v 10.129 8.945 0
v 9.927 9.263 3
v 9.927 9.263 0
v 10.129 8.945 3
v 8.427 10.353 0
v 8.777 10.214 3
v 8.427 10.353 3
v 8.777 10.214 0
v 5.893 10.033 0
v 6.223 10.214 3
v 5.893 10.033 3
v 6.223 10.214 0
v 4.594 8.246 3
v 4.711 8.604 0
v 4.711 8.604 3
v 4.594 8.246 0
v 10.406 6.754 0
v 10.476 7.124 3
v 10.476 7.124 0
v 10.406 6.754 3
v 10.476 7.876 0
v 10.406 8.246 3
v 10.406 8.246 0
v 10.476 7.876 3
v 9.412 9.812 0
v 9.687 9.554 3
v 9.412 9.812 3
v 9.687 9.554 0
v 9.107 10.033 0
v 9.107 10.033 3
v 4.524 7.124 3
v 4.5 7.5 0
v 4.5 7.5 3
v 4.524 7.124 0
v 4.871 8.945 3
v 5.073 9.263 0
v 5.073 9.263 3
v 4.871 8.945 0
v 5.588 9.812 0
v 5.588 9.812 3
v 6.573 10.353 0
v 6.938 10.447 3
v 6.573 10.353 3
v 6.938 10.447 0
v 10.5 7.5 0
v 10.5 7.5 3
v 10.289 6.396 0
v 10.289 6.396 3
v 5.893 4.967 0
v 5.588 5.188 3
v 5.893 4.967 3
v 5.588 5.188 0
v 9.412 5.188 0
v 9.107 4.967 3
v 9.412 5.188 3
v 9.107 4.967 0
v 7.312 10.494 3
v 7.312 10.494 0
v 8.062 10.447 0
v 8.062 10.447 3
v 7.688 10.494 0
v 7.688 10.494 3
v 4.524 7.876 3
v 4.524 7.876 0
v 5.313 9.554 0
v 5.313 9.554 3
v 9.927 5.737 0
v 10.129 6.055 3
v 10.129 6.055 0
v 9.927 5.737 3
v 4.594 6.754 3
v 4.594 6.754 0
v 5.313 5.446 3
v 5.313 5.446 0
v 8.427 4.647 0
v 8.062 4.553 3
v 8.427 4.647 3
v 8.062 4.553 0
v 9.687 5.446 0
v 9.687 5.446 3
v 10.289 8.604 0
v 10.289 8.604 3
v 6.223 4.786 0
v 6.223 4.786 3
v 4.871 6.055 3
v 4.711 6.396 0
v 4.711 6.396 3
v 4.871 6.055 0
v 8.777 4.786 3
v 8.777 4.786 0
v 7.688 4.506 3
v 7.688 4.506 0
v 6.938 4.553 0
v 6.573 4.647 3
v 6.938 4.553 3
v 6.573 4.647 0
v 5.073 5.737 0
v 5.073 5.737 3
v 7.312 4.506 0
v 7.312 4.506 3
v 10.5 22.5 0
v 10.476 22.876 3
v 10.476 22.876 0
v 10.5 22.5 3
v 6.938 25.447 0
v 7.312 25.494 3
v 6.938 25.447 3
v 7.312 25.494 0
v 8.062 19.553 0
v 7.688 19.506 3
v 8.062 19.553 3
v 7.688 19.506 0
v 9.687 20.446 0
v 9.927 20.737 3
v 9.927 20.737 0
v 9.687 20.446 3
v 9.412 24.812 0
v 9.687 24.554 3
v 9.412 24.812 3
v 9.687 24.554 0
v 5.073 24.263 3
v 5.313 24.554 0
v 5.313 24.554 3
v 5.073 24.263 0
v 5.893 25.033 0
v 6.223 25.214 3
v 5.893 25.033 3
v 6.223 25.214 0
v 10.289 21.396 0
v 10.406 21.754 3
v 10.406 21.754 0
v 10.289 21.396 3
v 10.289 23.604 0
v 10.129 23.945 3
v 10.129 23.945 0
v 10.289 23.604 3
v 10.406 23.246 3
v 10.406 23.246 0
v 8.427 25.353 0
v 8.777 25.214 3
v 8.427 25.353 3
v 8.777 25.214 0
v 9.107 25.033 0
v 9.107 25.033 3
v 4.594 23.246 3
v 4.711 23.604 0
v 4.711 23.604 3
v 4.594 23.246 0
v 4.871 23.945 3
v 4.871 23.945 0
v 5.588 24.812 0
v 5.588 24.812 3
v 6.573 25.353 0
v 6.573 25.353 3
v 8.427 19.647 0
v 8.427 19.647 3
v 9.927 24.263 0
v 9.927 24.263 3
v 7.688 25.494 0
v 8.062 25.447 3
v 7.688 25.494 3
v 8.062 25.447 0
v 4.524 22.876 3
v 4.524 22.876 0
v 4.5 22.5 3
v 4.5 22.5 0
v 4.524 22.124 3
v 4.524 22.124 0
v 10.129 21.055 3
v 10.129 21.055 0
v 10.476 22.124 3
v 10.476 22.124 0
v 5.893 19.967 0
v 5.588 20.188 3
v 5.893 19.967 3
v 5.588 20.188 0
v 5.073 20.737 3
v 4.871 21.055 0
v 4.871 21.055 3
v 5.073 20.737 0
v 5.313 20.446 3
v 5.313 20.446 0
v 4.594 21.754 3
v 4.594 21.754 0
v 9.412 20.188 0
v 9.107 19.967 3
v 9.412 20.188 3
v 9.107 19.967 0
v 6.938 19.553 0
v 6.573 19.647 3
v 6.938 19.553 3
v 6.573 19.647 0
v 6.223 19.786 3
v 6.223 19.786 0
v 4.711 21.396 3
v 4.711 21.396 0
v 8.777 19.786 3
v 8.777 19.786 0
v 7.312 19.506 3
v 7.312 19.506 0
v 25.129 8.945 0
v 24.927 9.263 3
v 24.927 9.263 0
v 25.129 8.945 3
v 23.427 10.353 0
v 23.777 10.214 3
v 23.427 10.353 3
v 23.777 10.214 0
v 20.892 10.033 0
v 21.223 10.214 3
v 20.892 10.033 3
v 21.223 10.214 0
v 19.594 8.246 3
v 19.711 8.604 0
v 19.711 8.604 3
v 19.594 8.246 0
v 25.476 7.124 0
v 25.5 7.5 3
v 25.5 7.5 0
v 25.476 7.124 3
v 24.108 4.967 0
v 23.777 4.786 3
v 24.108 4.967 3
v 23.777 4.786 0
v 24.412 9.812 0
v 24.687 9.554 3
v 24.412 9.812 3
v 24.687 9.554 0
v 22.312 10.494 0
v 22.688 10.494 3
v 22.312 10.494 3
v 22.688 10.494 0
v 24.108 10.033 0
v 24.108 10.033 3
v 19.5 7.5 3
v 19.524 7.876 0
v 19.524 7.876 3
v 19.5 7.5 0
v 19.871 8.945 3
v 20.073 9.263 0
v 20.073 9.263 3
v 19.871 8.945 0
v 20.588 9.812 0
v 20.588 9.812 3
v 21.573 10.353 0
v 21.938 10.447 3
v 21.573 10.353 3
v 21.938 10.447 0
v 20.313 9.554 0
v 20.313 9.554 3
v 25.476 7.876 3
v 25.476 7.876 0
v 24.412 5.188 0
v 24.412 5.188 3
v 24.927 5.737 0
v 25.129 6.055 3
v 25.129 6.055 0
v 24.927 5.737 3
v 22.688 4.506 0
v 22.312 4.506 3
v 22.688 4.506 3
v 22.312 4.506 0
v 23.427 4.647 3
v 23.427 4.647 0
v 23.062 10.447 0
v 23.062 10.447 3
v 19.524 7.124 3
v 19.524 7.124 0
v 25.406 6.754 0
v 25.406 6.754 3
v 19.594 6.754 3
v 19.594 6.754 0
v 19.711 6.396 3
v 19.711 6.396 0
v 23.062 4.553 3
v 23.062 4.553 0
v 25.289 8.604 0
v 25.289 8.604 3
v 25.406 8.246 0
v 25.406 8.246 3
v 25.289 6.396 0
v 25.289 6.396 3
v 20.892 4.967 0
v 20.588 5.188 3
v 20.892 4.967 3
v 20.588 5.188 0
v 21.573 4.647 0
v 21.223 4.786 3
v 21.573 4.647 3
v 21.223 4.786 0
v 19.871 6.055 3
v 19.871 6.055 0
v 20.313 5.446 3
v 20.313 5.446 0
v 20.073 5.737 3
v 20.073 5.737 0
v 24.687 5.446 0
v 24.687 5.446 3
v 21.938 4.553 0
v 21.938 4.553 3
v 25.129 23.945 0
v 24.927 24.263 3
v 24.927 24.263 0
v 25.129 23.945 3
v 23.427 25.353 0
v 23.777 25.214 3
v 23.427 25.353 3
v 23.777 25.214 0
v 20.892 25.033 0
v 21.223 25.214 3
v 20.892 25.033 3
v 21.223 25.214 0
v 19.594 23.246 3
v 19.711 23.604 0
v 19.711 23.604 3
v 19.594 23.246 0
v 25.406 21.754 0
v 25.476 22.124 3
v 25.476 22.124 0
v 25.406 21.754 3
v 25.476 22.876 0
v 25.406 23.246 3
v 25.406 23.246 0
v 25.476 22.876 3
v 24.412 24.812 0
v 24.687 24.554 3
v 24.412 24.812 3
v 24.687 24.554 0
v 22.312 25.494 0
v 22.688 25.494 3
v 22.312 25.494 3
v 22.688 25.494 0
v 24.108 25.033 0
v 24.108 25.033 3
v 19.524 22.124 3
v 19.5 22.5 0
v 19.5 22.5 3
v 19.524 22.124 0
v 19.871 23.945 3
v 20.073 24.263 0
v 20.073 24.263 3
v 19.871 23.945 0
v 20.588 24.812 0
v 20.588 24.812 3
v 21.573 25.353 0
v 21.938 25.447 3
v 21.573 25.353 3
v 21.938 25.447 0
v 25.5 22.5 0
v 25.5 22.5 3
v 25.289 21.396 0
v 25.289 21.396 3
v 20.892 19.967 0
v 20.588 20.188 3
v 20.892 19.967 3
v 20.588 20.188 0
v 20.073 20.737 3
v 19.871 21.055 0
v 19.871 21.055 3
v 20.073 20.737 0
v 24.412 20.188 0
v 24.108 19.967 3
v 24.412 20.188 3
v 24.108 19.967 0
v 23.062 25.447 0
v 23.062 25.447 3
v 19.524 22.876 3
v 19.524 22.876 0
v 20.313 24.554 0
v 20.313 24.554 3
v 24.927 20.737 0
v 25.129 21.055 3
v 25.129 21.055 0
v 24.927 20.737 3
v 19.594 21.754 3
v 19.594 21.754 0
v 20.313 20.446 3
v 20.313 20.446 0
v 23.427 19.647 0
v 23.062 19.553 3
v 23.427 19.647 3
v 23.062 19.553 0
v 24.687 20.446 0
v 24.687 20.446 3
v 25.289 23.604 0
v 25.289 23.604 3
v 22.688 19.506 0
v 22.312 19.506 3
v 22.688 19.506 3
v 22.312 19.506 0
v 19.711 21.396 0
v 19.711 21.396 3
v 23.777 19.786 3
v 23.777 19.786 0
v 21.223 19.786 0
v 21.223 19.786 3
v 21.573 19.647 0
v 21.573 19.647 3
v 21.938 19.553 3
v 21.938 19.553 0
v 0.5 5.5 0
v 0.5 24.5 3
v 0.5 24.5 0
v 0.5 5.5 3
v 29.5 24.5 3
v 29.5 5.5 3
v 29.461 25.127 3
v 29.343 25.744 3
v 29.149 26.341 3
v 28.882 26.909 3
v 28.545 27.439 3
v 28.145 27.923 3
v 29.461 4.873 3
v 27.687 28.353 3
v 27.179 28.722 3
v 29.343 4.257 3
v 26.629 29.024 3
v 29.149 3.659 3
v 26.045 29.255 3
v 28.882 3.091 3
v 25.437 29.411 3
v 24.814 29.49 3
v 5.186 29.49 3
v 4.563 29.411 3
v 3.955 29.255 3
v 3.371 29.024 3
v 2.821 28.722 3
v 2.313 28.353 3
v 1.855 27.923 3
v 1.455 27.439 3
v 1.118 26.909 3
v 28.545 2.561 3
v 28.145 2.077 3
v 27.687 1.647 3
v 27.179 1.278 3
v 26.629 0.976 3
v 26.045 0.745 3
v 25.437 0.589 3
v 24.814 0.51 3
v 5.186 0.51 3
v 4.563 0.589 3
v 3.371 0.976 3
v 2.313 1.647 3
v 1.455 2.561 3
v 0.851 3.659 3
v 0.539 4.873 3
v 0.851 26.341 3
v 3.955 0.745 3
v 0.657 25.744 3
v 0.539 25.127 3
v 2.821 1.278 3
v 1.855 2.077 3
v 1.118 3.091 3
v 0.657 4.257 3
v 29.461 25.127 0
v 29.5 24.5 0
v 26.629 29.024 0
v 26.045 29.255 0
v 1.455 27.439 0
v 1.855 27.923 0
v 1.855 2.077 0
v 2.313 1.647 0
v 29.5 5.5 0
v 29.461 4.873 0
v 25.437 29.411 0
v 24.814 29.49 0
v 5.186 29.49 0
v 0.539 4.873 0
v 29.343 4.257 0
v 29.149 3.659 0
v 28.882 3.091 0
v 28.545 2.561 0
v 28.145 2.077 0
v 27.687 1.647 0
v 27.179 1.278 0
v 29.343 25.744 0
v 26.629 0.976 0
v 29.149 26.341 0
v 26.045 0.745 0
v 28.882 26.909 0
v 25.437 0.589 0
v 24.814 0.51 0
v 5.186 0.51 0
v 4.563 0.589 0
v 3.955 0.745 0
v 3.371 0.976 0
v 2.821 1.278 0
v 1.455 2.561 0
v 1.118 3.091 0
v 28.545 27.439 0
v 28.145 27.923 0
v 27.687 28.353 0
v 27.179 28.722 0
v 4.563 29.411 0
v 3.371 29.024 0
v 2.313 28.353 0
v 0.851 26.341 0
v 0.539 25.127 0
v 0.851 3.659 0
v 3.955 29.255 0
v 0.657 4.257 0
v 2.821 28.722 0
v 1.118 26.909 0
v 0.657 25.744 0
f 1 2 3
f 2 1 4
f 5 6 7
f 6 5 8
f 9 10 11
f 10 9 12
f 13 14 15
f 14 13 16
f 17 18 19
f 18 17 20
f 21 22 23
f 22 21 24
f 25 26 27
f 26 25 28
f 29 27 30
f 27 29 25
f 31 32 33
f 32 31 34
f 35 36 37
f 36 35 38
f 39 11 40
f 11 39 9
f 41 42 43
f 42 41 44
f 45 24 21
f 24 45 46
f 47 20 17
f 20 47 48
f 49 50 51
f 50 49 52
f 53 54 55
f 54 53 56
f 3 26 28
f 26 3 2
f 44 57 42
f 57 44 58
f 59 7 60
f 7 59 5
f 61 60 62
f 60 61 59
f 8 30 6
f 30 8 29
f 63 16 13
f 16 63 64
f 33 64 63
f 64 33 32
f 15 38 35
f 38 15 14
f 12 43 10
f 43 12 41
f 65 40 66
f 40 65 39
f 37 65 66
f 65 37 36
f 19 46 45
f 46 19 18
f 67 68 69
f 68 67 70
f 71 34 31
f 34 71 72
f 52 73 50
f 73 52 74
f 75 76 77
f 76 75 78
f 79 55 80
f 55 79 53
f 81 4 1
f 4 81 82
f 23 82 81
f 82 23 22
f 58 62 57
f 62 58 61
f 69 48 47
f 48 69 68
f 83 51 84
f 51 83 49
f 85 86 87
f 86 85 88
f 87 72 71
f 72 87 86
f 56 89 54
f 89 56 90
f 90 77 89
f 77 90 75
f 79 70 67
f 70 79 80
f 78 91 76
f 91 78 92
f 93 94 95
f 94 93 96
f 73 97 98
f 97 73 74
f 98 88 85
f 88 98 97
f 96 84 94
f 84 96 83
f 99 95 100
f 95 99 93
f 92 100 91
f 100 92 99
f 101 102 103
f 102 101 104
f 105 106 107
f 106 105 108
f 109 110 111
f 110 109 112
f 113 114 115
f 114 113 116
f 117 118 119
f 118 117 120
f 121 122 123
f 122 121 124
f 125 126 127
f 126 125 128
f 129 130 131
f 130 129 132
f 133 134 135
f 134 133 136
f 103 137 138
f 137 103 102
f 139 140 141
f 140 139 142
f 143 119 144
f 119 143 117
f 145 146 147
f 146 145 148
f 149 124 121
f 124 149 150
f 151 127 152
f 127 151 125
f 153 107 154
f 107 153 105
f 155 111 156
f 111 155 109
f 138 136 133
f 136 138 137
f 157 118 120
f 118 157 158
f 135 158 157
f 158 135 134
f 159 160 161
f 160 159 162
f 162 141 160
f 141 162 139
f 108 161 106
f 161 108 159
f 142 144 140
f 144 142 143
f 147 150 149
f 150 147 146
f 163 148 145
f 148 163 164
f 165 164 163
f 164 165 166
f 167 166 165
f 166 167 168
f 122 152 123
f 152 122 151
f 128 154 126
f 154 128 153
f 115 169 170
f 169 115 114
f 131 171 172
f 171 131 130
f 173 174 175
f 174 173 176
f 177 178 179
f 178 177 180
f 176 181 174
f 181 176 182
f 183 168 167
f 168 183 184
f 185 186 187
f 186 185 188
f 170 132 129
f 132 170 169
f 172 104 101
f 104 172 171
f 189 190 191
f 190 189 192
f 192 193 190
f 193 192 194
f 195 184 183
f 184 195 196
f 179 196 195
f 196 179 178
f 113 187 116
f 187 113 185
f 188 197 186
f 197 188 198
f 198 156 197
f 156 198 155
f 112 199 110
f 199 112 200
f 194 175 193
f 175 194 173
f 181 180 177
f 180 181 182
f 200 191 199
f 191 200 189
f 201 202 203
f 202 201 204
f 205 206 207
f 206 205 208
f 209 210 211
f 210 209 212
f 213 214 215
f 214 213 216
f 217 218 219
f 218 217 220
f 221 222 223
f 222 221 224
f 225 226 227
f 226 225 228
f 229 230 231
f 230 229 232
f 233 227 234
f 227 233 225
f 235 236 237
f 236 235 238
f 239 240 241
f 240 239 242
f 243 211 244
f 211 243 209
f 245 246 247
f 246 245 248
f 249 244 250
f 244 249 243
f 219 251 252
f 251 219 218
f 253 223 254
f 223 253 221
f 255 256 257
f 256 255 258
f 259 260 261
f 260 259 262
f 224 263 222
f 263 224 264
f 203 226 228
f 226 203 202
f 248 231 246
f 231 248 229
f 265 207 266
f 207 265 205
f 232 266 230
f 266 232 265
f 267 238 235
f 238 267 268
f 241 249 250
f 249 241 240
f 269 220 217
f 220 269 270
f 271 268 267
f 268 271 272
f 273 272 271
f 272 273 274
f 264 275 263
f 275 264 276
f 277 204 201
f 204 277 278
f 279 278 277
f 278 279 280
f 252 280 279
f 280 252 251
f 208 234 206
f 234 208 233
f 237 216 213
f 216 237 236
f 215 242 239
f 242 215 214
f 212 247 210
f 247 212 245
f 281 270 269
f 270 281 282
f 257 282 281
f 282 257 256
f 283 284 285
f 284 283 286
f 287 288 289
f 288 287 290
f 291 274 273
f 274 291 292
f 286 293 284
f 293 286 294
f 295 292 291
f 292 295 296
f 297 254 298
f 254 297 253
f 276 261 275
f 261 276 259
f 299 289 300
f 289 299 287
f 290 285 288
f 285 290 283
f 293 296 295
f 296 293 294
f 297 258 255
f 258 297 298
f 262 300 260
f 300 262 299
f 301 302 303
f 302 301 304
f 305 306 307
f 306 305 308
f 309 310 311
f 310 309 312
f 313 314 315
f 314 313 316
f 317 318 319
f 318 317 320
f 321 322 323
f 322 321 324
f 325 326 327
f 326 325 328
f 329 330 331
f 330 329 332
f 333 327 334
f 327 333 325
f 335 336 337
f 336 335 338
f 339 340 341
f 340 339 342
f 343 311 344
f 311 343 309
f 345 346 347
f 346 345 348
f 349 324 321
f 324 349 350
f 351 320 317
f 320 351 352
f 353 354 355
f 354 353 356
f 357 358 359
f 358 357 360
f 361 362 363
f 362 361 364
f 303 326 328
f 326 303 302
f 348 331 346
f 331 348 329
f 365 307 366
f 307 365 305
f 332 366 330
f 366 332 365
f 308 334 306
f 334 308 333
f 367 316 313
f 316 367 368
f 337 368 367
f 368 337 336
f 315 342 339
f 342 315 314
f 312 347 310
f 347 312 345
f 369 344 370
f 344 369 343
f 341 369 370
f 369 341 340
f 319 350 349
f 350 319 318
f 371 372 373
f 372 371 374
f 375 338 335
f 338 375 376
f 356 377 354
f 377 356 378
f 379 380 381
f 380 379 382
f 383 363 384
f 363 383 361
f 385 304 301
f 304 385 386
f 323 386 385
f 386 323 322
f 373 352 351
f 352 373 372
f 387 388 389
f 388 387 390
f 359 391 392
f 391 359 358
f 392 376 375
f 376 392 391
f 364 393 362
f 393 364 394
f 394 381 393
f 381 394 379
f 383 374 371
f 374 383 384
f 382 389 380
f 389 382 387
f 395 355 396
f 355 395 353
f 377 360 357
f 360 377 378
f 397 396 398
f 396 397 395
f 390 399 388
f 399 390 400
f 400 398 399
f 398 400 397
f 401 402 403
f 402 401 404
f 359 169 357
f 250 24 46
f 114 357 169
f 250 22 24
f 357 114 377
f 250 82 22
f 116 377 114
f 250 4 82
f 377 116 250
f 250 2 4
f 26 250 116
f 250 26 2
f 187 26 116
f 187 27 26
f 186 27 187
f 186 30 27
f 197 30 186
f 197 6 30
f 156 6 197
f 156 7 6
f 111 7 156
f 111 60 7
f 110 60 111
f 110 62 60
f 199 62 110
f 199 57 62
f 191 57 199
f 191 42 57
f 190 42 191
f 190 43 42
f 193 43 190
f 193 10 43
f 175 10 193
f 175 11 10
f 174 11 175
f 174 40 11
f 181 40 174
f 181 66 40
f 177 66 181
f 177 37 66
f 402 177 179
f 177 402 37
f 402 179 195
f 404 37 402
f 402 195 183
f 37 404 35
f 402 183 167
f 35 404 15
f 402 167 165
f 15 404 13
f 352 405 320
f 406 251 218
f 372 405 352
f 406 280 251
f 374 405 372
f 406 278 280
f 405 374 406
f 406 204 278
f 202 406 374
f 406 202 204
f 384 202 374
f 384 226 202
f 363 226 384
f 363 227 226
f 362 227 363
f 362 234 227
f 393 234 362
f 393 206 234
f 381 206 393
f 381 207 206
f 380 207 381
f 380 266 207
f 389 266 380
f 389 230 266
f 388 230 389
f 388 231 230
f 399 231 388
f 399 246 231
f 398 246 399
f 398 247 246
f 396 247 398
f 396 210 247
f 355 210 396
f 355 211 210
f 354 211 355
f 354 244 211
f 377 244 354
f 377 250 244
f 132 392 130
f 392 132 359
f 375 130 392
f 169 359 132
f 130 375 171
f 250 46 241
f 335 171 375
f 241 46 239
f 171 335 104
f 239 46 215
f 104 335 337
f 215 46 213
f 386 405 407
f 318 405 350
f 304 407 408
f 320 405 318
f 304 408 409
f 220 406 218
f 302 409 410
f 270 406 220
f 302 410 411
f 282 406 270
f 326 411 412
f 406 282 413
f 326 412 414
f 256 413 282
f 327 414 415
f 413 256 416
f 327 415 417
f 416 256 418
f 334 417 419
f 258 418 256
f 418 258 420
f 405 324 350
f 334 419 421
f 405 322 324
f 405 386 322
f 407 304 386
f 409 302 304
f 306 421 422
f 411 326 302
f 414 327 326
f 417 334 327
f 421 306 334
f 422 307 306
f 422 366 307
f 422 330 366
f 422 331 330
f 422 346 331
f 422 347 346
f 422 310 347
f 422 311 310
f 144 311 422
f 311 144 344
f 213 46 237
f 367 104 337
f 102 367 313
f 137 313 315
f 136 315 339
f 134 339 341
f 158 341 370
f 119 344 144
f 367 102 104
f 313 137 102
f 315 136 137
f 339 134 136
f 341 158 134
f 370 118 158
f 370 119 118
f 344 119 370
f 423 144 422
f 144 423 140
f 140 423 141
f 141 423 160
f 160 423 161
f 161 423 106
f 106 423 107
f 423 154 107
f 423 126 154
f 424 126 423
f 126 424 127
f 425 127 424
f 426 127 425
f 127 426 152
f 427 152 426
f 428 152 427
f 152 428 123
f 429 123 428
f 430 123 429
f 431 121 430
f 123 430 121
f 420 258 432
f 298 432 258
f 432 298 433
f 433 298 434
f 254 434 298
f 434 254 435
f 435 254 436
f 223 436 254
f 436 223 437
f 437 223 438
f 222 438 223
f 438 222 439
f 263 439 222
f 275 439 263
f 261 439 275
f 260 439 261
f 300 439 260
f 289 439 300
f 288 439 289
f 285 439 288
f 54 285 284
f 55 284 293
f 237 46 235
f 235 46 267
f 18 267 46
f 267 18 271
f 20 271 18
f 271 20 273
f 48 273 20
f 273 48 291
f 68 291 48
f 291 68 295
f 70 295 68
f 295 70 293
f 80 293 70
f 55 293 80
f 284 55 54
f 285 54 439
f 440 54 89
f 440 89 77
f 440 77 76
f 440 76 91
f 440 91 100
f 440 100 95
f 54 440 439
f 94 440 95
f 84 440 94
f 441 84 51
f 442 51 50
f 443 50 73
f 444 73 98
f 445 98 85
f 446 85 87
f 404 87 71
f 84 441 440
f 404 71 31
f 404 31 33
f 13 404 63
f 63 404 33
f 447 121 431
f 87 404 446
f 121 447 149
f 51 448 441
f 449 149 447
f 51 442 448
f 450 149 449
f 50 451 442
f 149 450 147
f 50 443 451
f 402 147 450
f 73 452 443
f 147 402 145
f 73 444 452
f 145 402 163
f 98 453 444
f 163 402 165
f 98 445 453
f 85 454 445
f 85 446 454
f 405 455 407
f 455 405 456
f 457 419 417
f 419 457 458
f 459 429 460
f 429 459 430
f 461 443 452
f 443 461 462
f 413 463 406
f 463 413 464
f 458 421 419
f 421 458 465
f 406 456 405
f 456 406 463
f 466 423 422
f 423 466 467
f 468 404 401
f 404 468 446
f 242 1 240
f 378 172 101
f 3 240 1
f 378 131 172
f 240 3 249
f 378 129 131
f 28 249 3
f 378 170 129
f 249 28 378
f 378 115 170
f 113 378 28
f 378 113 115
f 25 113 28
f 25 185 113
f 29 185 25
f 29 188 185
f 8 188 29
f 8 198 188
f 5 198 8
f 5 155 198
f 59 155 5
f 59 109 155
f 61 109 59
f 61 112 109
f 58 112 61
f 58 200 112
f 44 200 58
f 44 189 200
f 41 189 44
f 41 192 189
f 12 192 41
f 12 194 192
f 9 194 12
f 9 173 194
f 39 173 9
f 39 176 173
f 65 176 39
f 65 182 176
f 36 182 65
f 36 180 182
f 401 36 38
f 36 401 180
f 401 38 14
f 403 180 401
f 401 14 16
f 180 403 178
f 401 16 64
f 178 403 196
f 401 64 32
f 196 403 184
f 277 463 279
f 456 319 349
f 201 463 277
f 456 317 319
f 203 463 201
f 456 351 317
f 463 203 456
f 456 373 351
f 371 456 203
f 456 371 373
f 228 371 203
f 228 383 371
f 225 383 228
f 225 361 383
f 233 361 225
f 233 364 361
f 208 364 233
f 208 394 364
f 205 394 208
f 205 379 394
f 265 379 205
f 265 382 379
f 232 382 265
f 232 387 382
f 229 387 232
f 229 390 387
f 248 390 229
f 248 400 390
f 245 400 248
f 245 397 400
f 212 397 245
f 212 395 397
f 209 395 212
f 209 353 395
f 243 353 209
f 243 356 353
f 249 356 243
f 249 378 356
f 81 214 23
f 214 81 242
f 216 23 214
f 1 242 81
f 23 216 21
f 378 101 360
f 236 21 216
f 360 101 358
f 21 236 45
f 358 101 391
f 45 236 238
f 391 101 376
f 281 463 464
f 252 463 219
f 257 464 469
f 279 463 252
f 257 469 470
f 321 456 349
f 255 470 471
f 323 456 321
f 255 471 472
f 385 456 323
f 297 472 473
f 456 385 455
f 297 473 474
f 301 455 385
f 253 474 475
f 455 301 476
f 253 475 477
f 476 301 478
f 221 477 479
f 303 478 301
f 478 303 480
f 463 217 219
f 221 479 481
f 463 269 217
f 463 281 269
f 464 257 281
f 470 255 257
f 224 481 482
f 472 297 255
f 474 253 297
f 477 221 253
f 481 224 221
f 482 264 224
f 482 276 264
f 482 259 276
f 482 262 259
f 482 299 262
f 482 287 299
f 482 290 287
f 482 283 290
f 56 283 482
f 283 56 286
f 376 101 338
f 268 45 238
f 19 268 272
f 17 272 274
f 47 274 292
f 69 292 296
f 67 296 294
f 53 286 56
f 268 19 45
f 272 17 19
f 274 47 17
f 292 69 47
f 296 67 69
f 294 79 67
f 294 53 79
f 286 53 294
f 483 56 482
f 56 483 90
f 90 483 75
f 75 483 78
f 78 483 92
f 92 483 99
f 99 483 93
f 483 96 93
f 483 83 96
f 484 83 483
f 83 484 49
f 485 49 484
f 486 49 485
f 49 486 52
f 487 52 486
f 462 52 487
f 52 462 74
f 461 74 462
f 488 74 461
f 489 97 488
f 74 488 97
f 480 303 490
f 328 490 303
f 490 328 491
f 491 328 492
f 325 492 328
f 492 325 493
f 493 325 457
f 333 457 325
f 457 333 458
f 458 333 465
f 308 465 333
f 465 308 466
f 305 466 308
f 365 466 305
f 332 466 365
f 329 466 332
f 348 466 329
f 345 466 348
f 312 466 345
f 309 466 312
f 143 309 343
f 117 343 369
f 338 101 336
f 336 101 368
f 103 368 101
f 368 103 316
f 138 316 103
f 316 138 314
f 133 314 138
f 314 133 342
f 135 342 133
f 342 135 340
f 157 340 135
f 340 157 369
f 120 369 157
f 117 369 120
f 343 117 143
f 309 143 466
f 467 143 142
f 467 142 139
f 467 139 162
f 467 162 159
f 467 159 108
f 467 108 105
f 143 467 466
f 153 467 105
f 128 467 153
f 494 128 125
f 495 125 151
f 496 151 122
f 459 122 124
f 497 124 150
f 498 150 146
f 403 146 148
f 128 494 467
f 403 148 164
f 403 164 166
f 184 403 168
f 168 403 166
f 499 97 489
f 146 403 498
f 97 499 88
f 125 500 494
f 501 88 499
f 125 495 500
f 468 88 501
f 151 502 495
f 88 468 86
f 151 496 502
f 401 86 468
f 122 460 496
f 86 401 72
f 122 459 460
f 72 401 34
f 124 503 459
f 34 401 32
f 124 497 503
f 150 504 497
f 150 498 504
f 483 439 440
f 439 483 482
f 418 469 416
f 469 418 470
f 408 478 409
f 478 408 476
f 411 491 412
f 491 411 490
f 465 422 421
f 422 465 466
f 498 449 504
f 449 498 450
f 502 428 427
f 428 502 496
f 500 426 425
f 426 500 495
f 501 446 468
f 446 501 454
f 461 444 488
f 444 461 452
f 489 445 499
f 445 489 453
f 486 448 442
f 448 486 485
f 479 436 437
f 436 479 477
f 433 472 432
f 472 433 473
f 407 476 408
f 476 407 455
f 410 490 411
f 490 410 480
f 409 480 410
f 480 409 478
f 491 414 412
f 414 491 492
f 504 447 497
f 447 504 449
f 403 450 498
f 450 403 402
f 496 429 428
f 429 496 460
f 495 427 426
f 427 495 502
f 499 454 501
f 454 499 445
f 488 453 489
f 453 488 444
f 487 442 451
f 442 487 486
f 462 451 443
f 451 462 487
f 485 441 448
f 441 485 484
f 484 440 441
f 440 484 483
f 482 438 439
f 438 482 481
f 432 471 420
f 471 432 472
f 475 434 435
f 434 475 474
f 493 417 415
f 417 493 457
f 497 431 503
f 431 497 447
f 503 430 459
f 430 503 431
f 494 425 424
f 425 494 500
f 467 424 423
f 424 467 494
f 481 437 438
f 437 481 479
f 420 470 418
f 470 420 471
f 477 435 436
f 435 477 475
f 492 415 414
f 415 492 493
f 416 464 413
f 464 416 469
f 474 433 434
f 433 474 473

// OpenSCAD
// Generated by SolidPython 1.1.3 on 2023-01-30 13:24:51
$fn = 50;


difference() {
	union() {
		translate(v = [15.0000000000, 15.0000000000, 0]) {
			rotate(a = [0, 0, 0]) {
				hull() {
					translate(v = [-9.5000000000, 9.5000000000, 0]) {
						rotate(a = [0, 0, 0]) {
							translate(v = [0, 0, 0]) {
								rotate(a = [0, 0, 0]) {
									cylinder(h = 3, r = 5);
								}
							}
						}
					}
					translate(v = [9.5000000000, 9.5000000000, 0]) {
						rotate(a = [0, 0, 0]) {
							translate(v = [0, 0, 0]) {
								rotate(a = [0, 0, 0]) {
									cylinder(h = 3, r = 5);
								}
							}
						}
					}
					translate(v = [-9.5000000000, -9.5000000000, 0]) {
						rotate(a = [0, 0, 0]) {
							translate(v = [0, 0, 0]) {
								rotate(a = [0, 0, 0]) {
									cylinder(h = 3, r = 5);
								}
							}
						}
					}
					translate(v = [9.5000000000, -9.5000000000, 0]) {
						rotate(a = [0, 0, 0]) {
							translate(v = [0, 0, 0]) {
								rotate(a = [0, 0, 0]) {
									cylinder(h = 3, r = 5);
								}
							}
						}
					}
				}
			}
		}
	}
	union() {
		translate(v = [7.5000000000, 7.5000000000, 0]) {
			rotate(a = [0, 0, 0]) {
				translate(v = [0, 0, -50]) {
					rotate(a = [0, 0, 0]) {
						cylinder(h = 100, r = 3.0000000000);
					}
				}
			}
		}
		translate(v = [7.5000000000, 22.5000000000, 0]) {
			rotate(a = [0, 0, 0]) {
				translate(v = [0, 0, -50]) {
					rotate(a = [0, 0, 0]) {
						cylinder(h = 100, r = 3.0000000000);
					}
				}
			}
		}
		translate(v = [22.5000000000, 7.5000000000, 0]) {
			rotate(a = [0, 0, 0]) {
				translate(v = [0, 0, -50]) {
					rotate(a = [0, 0, 0]) {
						cylinder(h = 100, r = 3.0000000000);
					}
				}
			}
		}
		translate(v = [22.5000000000, 22.5000000000, 0]) {
			rotate(a = [0, 0, 0]) {
				translate(v = [0, 0, -50]) {
					rotate(a = [0, 0, 0]) {
						cylinder(h = 100, r = 3.0000000000);
					}
				}
			}
		}
	}
}
/***********************************************
*********      SolidPython code:      **********
************************************************
 
from solid import *
import os
import subprocess

import oomB

import opsc_library_gen

mode = "laser"
#mode = "3d_print"

defined_objects = {}

radius_dict = {}
countersunk_dict = {}


def set_mode(m):
    global mode
    mode = m
    radius_dict['M6'] = 6.5/2
    radius_dict['M3'] = 3.3/2
    if mode == "laser":
        radius_dict['M6'] = 6/2
        radius_dict['M3'] = 3/2

    countersunk_dict['M3'] = {}
    countersunk_dict['M3']['little_rad'] = radius_dict['M3']
    countersunk_dict['M3']['big_rad'] = (5.5+0.6)/2
    if mode == "laser":
        countersunk_dict['M3']['big_rad'] = (4.75+0.6)/2
        countersunk_dict['M3']['little_rad'] = (4.75+0.6)/2

    countersunk_dict['M3']['height'] = 1.7


def opsc_make_object(filename, objects, save_type="none",resolution=50, layers = 1, tilediff = 200, mode="laser"):
    set_mode(mode)
    save_type = save_type.lower()
    os.makedirs(os.path.dirname(filename), exist_ok=True)
    final_object = opsc_get_object(objects)
    # Save the final object to the specified filename    
    scad_render_to_file(final_object, filename, file_header='$fn = %s;' % resolution, include_orig_code=True)
    if mode == "laser":
        filename_laser = filename.replace(".scad","-flat.scad")
        scad_render_to_file(getLaser(final_object, layers=layers, tilediff=tilediff), filename_laser, file_header='$fn = %s;' % resolution, include_orig_code=True)
        if save_type == "all":
            saveToAll(filename_laser)
        elif save_type == "dxf":
            saveToDxf(filename_laser)
    if save_type == "all":
        saveToAll(filename)
    elif save_type == "dxf":
        saveToDxf(filename)


def opsc_get_object(objects):
    # Create the solidpython objects
    positive_objects = [get_opsc_item(obj) for obj in objects if obj['type'] == 'positive']
    negative_objects = [get_opsc_item(obj) for obj in objects if obj['type'] == 'negative']
    # Union the positive objects
    positive_object = union()(*positive_objects)
    # Union the negative objects
    negative_object = union()(*negative_objects)
    # Create the final object by subtracting the negative objects from the positive objects
    return difference()(positive_object, negative_object)

def get_opsc_item(params):
    # A dictionary to map radius string values to numerical values
    #radius_dict = {'small': 5, 'medium': 10, 'large': 15}
    # An array of function names for basic shapes
    basic_shapes = ['cube', 'sphere', 'cylinder']
    
    # An array of function names for other shapes
    other_shapes = ['hole', 'slot', 'rounded_rectangle', 'countersunk']
    


    # Convert radius to r if present, and remove radius from the params dictionary
    if 'radius' in params:
        if isinstance(params['radius'], str):
            # Use the radius_dict to map the radius string value to a numerical value
            params['r'] = radius_dict[params['radius']]
        else:
            params['r'] = params['radius']
        del params['radius']
    

    # Check if the object type is a basic shape
    if params['shape'] in basic_shapes:
        # Remove shape and unexpected dictionary values
        allowed_keys = {'size', 'r', 'r1', 'r2', 'd', 'h', 'rw', 'rh', 'dw', 'dh'}
        shape_params = {k: v for k, v in params.items() if k in allowed_keys}

        # Call the corresponding function for the shape parameter, using ** notation to pass the shape_params dictionary as keyword arguments
        return get_opsc_transform(params,globals()[params['shape']](**shape_params))
    
    # If the object type is not a basic shape, check if it's a defined object or one of the other shapes
    elif params['shape'] in other_shapes:
        # Call the corresponding function for the shape parameter, passing the params dictionary as an argument
        p2 = copy.deepcopy(params)
        p2["pos"] = [0,0,0]
        return get_opsc_transform(params,globals()[params['shape']](p2))
    
    # If the object is not a basic shape or a defined object, try to import it from a .scad file
    else:
        obj = defined_objects[params['shape']]
        return get_opsc_transform(params,obj)

def get_opsc_transform(params, solid_obj):
    # Rotate the object based on the 'rot' field in the params dictionary, or the 'rotX', 'rotY', and 'rotZ' fields if 'rot' is not present
    rot = params.get('rot', [])
    if rot:
        rotX, rotY, rotZ = rot
    else:
        rotX = params.get('rotX', 0)
        rotY = params.get('rotY', 0)
        rotZ = params.get('rotZ', 0)
    solid_obj = rotate([rotX, rotY, rotZ])(solid_obj)

    # Translate the object based on the 'pos' field in the params dictionary, or the 'x', 'y', and 'z' fields if 'pos' is not present
    pos = params.get('pos', [])
    if pos:
        x, y, z = pos
    else:
        x = params.get('x', 0)
        y = params.get('y', 0)
        z = params.get('z', 0)
    solid_obj = translate([x, y, z])(solid_obj)
    return solid_obj


import random

def opsc_easy_array(type, shape, repeats, pos_start, shift_arr, **kwargs):
    for i in range(0,3):
        repeats.append(1)
        pos_start.append(0)
        shift_arr.append(0)
    return_objects = []

    for x in range(0,repeats[0]):
        for y in range(0,repeats[1]):
            for z in range(0,repeats[2]):
                return_objects.append(opsc_easy(type, shape, pos=[pos_start[0]+x*shift_arr[0],pos_start[1]+y*shift_arr[1],pos_start[2]+z*shift_arr[2]], **kwargs))
    return return_objects                



def opsc_easy(type, shape, **kwargs):
    obj = {
        'type': type,
        'shape': shape
    }
    for param in ['size', 'r', 'r1', 'r2', 'd', 'h', 'rw', 'rh', 'dw', 'dh', 'pos', 'x', 'y', 'z', 'rot', 'rotX', 'rotY', 'rotZ', "w"]:
        if param in kwargs:
            obj[param] = kwargs[param]
    return obj

def hole(params):
    p2 = copy.deepcopy(params)  
    # Check if the radius is a string and replace it with the corresponding value from the dictionary
    if isinstance(p2['r'], str):
        p2['r'] = radius_dict[p2['r']]
    
    # Set the height to 100 if not specified
    if 'h' not in p2:
        p2['h'] = 100
        p2["pos"] = [0,0,-50]
    p2["center"] = True
    # Create the cylinder object
    p2["shape"] = "cylinder"
    p2["type"] = "positive"

    return get_opsc_item(p2)

import copy

def countersunk(params):
    p2 = copy.deepcopy(params)
    counter_rad = p2['r']
    p2['r'] = radius_dict[p2['r']]
    hp = copy.deepcopy(p2)
    hp["type"] = "positive"
    hp["shape"] = "hole"
    del hp["rot"]
    hol = get_opsc_item(hp)
    
    cp = copy.deepcopy(p2)
    cp["h"] = countersunk_dict[counter_rad]["height"]
    cp["r2"] = countersunk_dict[counter_rad]["little_rad"]
    cp["r1"] = countersunk_dict[counter_rad]["big_rad"]
    del cp["r"]
    del cp["rot"]
    cp["type"] = "positive"
    cp["shape"] = "cylinder"
    cp["pos"] = [0,0,0]

    top = get_opsc_item(cp)
    return union()(hol,top)



def slot(params):  
    p2 = copy.deepcopy(params) 
    if isinstance(p2['r'], str):
        p2['r'] = radius_dict[p2['r']]
    p2["type"] = "positive"
    p2["shape"] = "hole"
    del p2["rot"]
    p2["pos"] = [0,0,0]
    left = copy.deepcopy(p2)
    right = copy.deepcopy(p2)
    left["pos"][0] = p2["w"] / 2 - p2["r"] 
    
    right["pos"][0] = -p2["w"] / 2 + p2["r"] 
    pass
    leftObj = get_opsc_item(left)
    rightObj = get_opsc_item(right)
    return hull()(leftObj, rightObj)

def rounded_rectangle(params):   
    p2 = copy.deepcopy(params) 
    p2["h"] = p2["size"][2]
    p2["pos"] = p2.get("pos", [0, 0, 0]) 
    p2["type"] = "positive"
    p2["shape"] = "hole"
    p2["pos"] = [0,0,0]
    
    if 'rot' in p2:
        del p2["rot"]   
    if 'r' not in p2:
        p2["r"] = 5 
    tl = copy.deepcopy(p2)
    tr = copy.deepcopy(p2)
    bl = copy.deepcopy(p2)
    br = copy.deepcopy(p2)
    tl["pos"][0] = -(p2["size"][0] - p2["r"]*2)/2
    tl["pos"][1] = (p2["size"][1] - p2["r"]*2)/2
    tr["pos"][0] = (p2["size"][0] - p2["r"]*2)/2
    tr["pos"][1] = (p2["size"][1] - p2["r"]*2)/2
    bl["pos"][0] = -(p2["size"][0] - p2["r"]*2)/2
    bl["pos"][1] = -(p2["size"][1] - p2["r"]*2)/2
    br["pos"][0] = (p2["size"][0] - p2["r"]*2)/2
    br["pos"][1] = -(p2["size"][1] - p2["r"]*2)/2
    del tl["size"]
    del tr["size"]
    del bl["size"]
    del br["size"]
    tlo = get_opsc_item(tl)
    tro = get_opsc_item(tr)
    blo = get_opsc_item(bl)
    bro = get_opsc_item(br)    
    return hull()(tlo, tro, blo, bro)



def import_scad_object(filename):
    # Import the .scad file and convert it to a solidpython object
    #filename = "parts"
    obj = import_scad(filename)
    return obj.main()
    


import os
import solid as solidpython

# A dictionary to store the defined objects


def load_scad_objects():
    opsc_library_gen.gen_library(defined_objects)

import random

def test(num_objects):
    objects = []
    for i in range(num_objects):
        # Choose a random shape
        #shape = random.choice(['cube', 'sphere', 'cylinder', 'hole', 'slot', "rounded_rectangle"])
        shape = random.choice(["rounded_rectangle"])

        # Choose a random type
        type = random.choice(['positive', 'negative'])
        
        # Create an empty object dictionary
        obj = {'shape': shape, 'type': type}
        
        # Set shape-specific parameters
        if obj['shape'] in ['cube']:
            obj['size'] =  [random.uniform(5, 15), random.uniform(5, 15), random.uniform(5, 15)]
        if obj['shape'] in ['rounded_rectangle']:
            obj['size'] =  [random.uniform(5, 15), random.uniform(5, 15), random.uniform(5, 15)]
            obj['r'] = random.uniform(0.5, 5)
        elif obj['shape'] == 'sphere':
            obj['r'] = random.uniform(5, 15)
        elif obj['shape'] in ['cylinder', 'hole']:
            obj['r'] = random.uniform(0.5, 5)
            obj['h'] = random.uniform(5, 15)
        elif obj['shape'] == 'slot':
            obj['r'] = random.uniform(0.5, 5)
            obj['h'] = random.uniform(5, 15)
            obj['w'] = random.uniform(5, 15)
        
        # Set a random position and rotation
        obj['pos'] = [random.uniform(-20, 20), random.uniform(-20, 20), random.uniform(-20, 20)]
        obj['rot'] = [random.uniform(-180, 180), random.uniform(-180, 180), random.uniform(-180, 180)]
        
        # Add the object to the list
        objects.append(obj)
    return objects

####### old file saving
def saveToAll(fileIn):
    saveToDxf(fileIn)
    saveToPng(fileIn)
    saveToStl(fileIn)
    saveToSvg(fileIn)

def saveToDxf(fileIn, fileOut="", copy_to_laser=True):
    if fileOut == "":
        fileOut = fileIn.replace(".scad",".dxf")
    saveToFile(fileIn, fileOut)


    
def saveToPng(fileIn, fileOut="",extra="--render"):
    if fileOut == "":
        fileOut = fileIn.replace(".scad",".png")
    saveToFile(fileIn, fileOut)

def saveToStl(fileIn, fileOut=""):
    if fileOut == "":
        fileOut = fileIn.replace(".scad",".stl")
    saveToFile(fileIn, fileOut)
    
def saveToSvg(fileIn, fileOut=""):
    if fileOut == "":
        fileOut = fileIn.replace(".scad",".svg")
    saveToFile(fileIn, fileOut)

def saveToFile(fileIn, fileOut,extra=""):
    #extra = extra + " --colorscheme Tomorrow"

    launchStr = 'openscad -o "' + fileOut + '"' + extra + ' "' + fileIn + '"'
    if ".png" in fileOut:
        launchStr = launchStr + " --render"
    print("            saveToFile launch string: " + launchStr)
    subprocess.run(launchStr)
    x=0

def getLaser(final_object,start=1.5,layers=1,thickness=3,tilediff=200):
        rv= []

        for x in range(layers):
            rv.append(translate([0,x*tilediff,0])(
                    projection()(
                        intersection()(translate([-500,-500,start+x*thickness])(cube(size=[1000,1000,0.1])),
                            final_object
                        )
                    )
            )
            )
            
        return union()(rv)

set_mode("laser")
load_scad_objects() 
 
************************************************/
